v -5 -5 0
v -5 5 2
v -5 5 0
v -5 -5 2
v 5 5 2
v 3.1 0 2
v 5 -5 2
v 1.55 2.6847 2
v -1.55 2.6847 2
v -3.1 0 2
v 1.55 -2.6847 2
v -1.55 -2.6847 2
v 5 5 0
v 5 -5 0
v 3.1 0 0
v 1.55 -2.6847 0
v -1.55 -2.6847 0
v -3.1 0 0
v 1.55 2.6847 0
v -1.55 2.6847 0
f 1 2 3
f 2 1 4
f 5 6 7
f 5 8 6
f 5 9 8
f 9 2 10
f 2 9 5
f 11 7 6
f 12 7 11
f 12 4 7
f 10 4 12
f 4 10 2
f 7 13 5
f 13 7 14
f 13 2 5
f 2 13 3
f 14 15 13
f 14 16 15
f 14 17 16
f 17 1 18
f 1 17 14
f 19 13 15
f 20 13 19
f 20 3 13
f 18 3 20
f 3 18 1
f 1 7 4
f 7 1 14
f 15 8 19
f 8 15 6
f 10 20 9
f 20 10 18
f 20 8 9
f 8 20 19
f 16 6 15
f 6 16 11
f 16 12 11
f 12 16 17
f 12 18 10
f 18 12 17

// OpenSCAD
//Plate centered and on origin
n_plate_size = 10;
n_plate_thickness = 2;

//Create a plate
module plate(in_size_x, in_size_y, in_height)
{
    //Translate upward by half height to rest on plane
    translate([0,0,in_height/2])
    cube([in_size_x, in_size_y, in_height], center=true);
}

//Create an exagonal pillar
module hexagon(in_diameter, in_height)
{
    //Translate upward by half height to rest on plane
    translate([0,0,in_height/2])
    //Make a rough cylinder with six sides
    cylinder(r=in_diameter/2, h=in_height, $fn=6, center=true);
}

//extrusion is subtraction between first and second volumes
difference() {
    color("green")
        plate( n_plate_size, n_plate_size, n_plate_thickness);
    
    color("yellow")
        translate([0, 0, 0])
            hexagon(6.2, n_plate_thickness);
}
